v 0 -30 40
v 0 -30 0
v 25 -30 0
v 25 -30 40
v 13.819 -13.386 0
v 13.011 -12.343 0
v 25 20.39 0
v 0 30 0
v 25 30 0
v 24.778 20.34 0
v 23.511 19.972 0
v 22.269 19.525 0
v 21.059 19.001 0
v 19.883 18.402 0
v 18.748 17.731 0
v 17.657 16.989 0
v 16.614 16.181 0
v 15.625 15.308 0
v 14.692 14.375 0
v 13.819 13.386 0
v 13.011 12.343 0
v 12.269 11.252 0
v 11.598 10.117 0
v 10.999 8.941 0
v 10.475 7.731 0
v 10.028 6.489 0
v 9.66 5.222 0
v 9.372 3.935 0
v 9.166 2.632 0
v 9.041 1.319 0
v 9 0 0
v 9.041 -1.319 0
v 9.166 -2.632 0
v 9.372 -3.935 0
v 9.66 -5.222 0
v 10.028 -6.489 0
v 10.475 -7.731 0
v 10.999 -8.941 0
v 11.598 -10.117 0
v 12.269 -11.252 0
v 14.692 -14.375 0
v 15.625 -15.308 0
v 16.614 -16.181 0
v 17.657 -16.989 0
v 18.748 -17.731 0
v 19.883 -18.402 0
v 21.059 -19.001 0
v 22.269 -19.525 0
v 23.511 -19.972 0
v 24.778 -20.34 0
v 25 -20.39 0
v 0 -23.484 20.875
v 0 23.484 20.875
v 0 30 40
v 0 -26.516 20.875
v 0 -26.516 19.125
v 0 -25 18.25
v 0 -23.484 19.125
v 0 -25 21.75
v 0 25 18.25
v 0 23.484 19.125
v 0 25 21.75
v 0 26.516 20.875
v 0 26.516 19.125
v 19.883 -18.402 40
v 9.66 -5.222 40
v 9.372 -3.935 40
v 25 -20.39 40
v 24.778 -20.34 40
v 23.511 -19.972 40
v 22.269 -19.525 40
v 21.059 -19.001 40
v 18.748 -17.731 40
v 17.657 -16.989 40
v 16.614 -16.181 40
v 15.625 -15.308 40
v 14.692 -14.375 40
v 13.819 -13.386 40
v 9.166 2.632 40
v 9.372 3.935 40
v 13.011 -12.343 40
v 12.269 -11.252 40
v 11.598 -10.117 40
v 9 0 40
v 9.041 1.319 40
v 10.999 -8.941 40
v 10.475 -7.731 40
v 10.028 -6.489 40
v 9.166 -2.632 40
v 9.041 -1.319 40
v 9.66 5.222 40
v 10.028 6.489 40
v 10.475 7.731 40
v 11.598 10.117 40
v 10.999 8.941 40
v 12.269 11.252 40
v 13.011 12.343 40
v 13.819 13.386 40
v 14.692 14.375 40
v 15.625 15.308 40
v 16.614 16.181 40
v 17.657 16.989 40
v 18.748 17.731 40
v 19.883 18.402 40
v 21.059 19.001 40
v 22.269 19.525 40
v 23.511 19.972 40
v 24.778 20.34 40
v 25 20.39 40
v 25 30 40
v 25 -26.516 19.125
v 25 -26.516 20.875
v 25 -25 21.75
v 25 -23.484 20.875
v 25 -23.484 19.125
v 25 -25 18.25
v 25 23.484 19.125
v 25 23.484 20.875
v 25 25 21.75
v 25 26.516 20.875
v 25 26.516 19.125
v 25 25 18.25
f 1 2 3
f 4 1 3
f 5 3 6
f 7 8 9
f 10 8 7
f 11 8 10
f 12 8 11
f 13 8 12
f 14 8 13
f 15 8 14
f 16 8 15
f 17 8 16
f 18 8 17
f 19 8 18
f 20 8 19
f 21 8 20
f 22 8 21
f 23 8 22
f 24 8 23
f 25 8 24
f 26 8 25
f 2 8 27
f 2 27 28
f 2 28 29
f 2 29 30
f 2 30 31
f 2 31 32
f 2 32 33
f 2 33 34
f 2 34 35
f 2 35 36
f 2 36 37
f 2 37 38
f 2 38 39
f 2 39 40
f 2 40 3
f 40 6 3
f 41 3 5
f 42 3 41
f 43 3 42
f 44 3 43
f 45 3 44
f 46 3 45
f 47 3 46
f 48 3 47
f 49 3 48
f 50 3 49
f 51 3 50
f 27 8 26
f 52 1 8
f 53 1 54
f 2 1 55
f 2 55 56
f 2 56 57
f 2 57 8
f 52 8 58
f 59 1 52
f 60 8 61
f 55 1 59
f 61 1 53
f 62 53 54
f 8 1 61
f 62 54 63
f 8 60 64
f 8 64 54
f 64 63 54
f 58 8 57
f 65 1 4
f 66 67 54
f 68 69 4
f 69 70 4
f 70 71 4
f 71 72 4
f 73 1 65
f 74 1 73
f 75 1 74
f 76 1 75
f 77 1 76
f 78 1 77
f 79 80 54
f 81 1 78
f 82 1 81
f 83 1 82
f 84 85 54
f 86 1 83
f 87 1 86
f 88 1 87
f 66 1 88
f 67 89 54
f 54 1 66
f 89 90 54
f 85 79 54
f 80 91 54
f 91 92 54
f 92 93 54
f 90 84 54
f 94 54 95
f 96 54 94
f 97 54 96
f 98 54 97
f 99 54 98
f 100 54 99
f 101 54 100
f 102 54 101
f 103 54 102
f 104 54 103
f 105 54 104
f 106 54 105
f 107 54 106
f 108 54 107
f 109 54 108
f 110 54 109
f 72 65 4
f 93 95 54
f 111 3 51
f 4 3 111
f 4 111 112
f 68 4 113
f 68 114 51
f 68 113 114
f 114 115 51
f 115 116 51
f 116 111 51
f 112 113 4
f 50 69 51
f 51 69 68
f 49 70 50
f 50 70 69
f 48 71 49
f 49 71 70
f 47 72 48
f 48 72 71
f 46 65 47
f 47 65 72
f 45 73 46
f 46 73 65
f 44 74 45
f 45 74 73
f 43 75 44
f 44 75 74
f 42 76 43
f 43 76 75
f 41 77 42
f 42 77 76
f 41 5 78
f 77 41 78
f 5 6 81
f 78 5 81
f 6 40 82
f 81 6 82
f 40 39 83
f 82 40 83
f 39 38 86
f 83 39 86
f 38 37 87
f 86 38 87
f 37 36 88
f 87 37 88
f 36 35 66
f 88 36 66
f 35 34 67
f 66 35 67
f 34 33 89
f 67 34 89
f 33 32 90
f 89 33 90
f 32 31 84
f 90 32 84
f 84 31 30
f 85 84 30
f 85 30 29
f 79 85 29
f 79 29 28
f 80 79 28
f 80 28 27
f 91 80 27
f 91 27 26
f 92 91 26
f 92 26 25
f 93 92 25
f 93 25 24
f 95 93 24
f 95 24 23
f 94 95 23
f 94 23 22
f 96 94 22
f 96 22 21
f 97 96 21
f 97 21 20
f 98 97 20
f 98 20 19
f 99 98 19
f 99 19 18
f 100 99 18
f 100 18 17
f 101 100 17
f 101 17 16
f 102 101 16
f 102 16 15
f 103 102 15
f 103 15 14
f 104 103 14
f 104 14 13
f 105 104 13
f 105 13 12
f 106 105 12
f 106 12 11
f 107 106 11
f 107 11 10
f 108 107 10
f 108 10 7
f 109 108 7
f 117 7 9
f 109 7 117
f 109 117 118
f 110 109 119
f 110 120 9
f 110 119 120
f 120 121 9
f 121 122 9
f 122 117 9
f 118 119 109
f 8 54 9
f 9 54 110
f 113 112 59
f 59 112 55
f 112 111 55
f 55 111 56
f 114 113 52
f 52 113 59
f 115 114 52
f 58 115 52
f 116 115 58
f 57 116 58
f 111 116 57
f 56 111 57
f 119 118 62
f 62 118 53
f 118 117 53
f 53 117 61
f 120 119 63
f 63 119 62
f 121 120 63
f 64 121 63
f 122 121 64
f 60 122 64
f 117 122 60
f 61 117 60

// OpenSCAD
//Phone Microscope Adapter Outside Clamp
difference(){

	translate([30,0,0])linear_extrude(height=40){
		difference(){
			translate([-15,0,0])square([30,60], center=true);
			circle(21, $fn=100);
			square([10,60], center=true);
		}
	}

	union(){
		translate([-10,-25,20])rotate([0,90,0])cylinder(40,1.75,1.75);
		translate([-10,25,20])rotate([0,90,0])cylinder(40,1.75,1.75);
	}

}
